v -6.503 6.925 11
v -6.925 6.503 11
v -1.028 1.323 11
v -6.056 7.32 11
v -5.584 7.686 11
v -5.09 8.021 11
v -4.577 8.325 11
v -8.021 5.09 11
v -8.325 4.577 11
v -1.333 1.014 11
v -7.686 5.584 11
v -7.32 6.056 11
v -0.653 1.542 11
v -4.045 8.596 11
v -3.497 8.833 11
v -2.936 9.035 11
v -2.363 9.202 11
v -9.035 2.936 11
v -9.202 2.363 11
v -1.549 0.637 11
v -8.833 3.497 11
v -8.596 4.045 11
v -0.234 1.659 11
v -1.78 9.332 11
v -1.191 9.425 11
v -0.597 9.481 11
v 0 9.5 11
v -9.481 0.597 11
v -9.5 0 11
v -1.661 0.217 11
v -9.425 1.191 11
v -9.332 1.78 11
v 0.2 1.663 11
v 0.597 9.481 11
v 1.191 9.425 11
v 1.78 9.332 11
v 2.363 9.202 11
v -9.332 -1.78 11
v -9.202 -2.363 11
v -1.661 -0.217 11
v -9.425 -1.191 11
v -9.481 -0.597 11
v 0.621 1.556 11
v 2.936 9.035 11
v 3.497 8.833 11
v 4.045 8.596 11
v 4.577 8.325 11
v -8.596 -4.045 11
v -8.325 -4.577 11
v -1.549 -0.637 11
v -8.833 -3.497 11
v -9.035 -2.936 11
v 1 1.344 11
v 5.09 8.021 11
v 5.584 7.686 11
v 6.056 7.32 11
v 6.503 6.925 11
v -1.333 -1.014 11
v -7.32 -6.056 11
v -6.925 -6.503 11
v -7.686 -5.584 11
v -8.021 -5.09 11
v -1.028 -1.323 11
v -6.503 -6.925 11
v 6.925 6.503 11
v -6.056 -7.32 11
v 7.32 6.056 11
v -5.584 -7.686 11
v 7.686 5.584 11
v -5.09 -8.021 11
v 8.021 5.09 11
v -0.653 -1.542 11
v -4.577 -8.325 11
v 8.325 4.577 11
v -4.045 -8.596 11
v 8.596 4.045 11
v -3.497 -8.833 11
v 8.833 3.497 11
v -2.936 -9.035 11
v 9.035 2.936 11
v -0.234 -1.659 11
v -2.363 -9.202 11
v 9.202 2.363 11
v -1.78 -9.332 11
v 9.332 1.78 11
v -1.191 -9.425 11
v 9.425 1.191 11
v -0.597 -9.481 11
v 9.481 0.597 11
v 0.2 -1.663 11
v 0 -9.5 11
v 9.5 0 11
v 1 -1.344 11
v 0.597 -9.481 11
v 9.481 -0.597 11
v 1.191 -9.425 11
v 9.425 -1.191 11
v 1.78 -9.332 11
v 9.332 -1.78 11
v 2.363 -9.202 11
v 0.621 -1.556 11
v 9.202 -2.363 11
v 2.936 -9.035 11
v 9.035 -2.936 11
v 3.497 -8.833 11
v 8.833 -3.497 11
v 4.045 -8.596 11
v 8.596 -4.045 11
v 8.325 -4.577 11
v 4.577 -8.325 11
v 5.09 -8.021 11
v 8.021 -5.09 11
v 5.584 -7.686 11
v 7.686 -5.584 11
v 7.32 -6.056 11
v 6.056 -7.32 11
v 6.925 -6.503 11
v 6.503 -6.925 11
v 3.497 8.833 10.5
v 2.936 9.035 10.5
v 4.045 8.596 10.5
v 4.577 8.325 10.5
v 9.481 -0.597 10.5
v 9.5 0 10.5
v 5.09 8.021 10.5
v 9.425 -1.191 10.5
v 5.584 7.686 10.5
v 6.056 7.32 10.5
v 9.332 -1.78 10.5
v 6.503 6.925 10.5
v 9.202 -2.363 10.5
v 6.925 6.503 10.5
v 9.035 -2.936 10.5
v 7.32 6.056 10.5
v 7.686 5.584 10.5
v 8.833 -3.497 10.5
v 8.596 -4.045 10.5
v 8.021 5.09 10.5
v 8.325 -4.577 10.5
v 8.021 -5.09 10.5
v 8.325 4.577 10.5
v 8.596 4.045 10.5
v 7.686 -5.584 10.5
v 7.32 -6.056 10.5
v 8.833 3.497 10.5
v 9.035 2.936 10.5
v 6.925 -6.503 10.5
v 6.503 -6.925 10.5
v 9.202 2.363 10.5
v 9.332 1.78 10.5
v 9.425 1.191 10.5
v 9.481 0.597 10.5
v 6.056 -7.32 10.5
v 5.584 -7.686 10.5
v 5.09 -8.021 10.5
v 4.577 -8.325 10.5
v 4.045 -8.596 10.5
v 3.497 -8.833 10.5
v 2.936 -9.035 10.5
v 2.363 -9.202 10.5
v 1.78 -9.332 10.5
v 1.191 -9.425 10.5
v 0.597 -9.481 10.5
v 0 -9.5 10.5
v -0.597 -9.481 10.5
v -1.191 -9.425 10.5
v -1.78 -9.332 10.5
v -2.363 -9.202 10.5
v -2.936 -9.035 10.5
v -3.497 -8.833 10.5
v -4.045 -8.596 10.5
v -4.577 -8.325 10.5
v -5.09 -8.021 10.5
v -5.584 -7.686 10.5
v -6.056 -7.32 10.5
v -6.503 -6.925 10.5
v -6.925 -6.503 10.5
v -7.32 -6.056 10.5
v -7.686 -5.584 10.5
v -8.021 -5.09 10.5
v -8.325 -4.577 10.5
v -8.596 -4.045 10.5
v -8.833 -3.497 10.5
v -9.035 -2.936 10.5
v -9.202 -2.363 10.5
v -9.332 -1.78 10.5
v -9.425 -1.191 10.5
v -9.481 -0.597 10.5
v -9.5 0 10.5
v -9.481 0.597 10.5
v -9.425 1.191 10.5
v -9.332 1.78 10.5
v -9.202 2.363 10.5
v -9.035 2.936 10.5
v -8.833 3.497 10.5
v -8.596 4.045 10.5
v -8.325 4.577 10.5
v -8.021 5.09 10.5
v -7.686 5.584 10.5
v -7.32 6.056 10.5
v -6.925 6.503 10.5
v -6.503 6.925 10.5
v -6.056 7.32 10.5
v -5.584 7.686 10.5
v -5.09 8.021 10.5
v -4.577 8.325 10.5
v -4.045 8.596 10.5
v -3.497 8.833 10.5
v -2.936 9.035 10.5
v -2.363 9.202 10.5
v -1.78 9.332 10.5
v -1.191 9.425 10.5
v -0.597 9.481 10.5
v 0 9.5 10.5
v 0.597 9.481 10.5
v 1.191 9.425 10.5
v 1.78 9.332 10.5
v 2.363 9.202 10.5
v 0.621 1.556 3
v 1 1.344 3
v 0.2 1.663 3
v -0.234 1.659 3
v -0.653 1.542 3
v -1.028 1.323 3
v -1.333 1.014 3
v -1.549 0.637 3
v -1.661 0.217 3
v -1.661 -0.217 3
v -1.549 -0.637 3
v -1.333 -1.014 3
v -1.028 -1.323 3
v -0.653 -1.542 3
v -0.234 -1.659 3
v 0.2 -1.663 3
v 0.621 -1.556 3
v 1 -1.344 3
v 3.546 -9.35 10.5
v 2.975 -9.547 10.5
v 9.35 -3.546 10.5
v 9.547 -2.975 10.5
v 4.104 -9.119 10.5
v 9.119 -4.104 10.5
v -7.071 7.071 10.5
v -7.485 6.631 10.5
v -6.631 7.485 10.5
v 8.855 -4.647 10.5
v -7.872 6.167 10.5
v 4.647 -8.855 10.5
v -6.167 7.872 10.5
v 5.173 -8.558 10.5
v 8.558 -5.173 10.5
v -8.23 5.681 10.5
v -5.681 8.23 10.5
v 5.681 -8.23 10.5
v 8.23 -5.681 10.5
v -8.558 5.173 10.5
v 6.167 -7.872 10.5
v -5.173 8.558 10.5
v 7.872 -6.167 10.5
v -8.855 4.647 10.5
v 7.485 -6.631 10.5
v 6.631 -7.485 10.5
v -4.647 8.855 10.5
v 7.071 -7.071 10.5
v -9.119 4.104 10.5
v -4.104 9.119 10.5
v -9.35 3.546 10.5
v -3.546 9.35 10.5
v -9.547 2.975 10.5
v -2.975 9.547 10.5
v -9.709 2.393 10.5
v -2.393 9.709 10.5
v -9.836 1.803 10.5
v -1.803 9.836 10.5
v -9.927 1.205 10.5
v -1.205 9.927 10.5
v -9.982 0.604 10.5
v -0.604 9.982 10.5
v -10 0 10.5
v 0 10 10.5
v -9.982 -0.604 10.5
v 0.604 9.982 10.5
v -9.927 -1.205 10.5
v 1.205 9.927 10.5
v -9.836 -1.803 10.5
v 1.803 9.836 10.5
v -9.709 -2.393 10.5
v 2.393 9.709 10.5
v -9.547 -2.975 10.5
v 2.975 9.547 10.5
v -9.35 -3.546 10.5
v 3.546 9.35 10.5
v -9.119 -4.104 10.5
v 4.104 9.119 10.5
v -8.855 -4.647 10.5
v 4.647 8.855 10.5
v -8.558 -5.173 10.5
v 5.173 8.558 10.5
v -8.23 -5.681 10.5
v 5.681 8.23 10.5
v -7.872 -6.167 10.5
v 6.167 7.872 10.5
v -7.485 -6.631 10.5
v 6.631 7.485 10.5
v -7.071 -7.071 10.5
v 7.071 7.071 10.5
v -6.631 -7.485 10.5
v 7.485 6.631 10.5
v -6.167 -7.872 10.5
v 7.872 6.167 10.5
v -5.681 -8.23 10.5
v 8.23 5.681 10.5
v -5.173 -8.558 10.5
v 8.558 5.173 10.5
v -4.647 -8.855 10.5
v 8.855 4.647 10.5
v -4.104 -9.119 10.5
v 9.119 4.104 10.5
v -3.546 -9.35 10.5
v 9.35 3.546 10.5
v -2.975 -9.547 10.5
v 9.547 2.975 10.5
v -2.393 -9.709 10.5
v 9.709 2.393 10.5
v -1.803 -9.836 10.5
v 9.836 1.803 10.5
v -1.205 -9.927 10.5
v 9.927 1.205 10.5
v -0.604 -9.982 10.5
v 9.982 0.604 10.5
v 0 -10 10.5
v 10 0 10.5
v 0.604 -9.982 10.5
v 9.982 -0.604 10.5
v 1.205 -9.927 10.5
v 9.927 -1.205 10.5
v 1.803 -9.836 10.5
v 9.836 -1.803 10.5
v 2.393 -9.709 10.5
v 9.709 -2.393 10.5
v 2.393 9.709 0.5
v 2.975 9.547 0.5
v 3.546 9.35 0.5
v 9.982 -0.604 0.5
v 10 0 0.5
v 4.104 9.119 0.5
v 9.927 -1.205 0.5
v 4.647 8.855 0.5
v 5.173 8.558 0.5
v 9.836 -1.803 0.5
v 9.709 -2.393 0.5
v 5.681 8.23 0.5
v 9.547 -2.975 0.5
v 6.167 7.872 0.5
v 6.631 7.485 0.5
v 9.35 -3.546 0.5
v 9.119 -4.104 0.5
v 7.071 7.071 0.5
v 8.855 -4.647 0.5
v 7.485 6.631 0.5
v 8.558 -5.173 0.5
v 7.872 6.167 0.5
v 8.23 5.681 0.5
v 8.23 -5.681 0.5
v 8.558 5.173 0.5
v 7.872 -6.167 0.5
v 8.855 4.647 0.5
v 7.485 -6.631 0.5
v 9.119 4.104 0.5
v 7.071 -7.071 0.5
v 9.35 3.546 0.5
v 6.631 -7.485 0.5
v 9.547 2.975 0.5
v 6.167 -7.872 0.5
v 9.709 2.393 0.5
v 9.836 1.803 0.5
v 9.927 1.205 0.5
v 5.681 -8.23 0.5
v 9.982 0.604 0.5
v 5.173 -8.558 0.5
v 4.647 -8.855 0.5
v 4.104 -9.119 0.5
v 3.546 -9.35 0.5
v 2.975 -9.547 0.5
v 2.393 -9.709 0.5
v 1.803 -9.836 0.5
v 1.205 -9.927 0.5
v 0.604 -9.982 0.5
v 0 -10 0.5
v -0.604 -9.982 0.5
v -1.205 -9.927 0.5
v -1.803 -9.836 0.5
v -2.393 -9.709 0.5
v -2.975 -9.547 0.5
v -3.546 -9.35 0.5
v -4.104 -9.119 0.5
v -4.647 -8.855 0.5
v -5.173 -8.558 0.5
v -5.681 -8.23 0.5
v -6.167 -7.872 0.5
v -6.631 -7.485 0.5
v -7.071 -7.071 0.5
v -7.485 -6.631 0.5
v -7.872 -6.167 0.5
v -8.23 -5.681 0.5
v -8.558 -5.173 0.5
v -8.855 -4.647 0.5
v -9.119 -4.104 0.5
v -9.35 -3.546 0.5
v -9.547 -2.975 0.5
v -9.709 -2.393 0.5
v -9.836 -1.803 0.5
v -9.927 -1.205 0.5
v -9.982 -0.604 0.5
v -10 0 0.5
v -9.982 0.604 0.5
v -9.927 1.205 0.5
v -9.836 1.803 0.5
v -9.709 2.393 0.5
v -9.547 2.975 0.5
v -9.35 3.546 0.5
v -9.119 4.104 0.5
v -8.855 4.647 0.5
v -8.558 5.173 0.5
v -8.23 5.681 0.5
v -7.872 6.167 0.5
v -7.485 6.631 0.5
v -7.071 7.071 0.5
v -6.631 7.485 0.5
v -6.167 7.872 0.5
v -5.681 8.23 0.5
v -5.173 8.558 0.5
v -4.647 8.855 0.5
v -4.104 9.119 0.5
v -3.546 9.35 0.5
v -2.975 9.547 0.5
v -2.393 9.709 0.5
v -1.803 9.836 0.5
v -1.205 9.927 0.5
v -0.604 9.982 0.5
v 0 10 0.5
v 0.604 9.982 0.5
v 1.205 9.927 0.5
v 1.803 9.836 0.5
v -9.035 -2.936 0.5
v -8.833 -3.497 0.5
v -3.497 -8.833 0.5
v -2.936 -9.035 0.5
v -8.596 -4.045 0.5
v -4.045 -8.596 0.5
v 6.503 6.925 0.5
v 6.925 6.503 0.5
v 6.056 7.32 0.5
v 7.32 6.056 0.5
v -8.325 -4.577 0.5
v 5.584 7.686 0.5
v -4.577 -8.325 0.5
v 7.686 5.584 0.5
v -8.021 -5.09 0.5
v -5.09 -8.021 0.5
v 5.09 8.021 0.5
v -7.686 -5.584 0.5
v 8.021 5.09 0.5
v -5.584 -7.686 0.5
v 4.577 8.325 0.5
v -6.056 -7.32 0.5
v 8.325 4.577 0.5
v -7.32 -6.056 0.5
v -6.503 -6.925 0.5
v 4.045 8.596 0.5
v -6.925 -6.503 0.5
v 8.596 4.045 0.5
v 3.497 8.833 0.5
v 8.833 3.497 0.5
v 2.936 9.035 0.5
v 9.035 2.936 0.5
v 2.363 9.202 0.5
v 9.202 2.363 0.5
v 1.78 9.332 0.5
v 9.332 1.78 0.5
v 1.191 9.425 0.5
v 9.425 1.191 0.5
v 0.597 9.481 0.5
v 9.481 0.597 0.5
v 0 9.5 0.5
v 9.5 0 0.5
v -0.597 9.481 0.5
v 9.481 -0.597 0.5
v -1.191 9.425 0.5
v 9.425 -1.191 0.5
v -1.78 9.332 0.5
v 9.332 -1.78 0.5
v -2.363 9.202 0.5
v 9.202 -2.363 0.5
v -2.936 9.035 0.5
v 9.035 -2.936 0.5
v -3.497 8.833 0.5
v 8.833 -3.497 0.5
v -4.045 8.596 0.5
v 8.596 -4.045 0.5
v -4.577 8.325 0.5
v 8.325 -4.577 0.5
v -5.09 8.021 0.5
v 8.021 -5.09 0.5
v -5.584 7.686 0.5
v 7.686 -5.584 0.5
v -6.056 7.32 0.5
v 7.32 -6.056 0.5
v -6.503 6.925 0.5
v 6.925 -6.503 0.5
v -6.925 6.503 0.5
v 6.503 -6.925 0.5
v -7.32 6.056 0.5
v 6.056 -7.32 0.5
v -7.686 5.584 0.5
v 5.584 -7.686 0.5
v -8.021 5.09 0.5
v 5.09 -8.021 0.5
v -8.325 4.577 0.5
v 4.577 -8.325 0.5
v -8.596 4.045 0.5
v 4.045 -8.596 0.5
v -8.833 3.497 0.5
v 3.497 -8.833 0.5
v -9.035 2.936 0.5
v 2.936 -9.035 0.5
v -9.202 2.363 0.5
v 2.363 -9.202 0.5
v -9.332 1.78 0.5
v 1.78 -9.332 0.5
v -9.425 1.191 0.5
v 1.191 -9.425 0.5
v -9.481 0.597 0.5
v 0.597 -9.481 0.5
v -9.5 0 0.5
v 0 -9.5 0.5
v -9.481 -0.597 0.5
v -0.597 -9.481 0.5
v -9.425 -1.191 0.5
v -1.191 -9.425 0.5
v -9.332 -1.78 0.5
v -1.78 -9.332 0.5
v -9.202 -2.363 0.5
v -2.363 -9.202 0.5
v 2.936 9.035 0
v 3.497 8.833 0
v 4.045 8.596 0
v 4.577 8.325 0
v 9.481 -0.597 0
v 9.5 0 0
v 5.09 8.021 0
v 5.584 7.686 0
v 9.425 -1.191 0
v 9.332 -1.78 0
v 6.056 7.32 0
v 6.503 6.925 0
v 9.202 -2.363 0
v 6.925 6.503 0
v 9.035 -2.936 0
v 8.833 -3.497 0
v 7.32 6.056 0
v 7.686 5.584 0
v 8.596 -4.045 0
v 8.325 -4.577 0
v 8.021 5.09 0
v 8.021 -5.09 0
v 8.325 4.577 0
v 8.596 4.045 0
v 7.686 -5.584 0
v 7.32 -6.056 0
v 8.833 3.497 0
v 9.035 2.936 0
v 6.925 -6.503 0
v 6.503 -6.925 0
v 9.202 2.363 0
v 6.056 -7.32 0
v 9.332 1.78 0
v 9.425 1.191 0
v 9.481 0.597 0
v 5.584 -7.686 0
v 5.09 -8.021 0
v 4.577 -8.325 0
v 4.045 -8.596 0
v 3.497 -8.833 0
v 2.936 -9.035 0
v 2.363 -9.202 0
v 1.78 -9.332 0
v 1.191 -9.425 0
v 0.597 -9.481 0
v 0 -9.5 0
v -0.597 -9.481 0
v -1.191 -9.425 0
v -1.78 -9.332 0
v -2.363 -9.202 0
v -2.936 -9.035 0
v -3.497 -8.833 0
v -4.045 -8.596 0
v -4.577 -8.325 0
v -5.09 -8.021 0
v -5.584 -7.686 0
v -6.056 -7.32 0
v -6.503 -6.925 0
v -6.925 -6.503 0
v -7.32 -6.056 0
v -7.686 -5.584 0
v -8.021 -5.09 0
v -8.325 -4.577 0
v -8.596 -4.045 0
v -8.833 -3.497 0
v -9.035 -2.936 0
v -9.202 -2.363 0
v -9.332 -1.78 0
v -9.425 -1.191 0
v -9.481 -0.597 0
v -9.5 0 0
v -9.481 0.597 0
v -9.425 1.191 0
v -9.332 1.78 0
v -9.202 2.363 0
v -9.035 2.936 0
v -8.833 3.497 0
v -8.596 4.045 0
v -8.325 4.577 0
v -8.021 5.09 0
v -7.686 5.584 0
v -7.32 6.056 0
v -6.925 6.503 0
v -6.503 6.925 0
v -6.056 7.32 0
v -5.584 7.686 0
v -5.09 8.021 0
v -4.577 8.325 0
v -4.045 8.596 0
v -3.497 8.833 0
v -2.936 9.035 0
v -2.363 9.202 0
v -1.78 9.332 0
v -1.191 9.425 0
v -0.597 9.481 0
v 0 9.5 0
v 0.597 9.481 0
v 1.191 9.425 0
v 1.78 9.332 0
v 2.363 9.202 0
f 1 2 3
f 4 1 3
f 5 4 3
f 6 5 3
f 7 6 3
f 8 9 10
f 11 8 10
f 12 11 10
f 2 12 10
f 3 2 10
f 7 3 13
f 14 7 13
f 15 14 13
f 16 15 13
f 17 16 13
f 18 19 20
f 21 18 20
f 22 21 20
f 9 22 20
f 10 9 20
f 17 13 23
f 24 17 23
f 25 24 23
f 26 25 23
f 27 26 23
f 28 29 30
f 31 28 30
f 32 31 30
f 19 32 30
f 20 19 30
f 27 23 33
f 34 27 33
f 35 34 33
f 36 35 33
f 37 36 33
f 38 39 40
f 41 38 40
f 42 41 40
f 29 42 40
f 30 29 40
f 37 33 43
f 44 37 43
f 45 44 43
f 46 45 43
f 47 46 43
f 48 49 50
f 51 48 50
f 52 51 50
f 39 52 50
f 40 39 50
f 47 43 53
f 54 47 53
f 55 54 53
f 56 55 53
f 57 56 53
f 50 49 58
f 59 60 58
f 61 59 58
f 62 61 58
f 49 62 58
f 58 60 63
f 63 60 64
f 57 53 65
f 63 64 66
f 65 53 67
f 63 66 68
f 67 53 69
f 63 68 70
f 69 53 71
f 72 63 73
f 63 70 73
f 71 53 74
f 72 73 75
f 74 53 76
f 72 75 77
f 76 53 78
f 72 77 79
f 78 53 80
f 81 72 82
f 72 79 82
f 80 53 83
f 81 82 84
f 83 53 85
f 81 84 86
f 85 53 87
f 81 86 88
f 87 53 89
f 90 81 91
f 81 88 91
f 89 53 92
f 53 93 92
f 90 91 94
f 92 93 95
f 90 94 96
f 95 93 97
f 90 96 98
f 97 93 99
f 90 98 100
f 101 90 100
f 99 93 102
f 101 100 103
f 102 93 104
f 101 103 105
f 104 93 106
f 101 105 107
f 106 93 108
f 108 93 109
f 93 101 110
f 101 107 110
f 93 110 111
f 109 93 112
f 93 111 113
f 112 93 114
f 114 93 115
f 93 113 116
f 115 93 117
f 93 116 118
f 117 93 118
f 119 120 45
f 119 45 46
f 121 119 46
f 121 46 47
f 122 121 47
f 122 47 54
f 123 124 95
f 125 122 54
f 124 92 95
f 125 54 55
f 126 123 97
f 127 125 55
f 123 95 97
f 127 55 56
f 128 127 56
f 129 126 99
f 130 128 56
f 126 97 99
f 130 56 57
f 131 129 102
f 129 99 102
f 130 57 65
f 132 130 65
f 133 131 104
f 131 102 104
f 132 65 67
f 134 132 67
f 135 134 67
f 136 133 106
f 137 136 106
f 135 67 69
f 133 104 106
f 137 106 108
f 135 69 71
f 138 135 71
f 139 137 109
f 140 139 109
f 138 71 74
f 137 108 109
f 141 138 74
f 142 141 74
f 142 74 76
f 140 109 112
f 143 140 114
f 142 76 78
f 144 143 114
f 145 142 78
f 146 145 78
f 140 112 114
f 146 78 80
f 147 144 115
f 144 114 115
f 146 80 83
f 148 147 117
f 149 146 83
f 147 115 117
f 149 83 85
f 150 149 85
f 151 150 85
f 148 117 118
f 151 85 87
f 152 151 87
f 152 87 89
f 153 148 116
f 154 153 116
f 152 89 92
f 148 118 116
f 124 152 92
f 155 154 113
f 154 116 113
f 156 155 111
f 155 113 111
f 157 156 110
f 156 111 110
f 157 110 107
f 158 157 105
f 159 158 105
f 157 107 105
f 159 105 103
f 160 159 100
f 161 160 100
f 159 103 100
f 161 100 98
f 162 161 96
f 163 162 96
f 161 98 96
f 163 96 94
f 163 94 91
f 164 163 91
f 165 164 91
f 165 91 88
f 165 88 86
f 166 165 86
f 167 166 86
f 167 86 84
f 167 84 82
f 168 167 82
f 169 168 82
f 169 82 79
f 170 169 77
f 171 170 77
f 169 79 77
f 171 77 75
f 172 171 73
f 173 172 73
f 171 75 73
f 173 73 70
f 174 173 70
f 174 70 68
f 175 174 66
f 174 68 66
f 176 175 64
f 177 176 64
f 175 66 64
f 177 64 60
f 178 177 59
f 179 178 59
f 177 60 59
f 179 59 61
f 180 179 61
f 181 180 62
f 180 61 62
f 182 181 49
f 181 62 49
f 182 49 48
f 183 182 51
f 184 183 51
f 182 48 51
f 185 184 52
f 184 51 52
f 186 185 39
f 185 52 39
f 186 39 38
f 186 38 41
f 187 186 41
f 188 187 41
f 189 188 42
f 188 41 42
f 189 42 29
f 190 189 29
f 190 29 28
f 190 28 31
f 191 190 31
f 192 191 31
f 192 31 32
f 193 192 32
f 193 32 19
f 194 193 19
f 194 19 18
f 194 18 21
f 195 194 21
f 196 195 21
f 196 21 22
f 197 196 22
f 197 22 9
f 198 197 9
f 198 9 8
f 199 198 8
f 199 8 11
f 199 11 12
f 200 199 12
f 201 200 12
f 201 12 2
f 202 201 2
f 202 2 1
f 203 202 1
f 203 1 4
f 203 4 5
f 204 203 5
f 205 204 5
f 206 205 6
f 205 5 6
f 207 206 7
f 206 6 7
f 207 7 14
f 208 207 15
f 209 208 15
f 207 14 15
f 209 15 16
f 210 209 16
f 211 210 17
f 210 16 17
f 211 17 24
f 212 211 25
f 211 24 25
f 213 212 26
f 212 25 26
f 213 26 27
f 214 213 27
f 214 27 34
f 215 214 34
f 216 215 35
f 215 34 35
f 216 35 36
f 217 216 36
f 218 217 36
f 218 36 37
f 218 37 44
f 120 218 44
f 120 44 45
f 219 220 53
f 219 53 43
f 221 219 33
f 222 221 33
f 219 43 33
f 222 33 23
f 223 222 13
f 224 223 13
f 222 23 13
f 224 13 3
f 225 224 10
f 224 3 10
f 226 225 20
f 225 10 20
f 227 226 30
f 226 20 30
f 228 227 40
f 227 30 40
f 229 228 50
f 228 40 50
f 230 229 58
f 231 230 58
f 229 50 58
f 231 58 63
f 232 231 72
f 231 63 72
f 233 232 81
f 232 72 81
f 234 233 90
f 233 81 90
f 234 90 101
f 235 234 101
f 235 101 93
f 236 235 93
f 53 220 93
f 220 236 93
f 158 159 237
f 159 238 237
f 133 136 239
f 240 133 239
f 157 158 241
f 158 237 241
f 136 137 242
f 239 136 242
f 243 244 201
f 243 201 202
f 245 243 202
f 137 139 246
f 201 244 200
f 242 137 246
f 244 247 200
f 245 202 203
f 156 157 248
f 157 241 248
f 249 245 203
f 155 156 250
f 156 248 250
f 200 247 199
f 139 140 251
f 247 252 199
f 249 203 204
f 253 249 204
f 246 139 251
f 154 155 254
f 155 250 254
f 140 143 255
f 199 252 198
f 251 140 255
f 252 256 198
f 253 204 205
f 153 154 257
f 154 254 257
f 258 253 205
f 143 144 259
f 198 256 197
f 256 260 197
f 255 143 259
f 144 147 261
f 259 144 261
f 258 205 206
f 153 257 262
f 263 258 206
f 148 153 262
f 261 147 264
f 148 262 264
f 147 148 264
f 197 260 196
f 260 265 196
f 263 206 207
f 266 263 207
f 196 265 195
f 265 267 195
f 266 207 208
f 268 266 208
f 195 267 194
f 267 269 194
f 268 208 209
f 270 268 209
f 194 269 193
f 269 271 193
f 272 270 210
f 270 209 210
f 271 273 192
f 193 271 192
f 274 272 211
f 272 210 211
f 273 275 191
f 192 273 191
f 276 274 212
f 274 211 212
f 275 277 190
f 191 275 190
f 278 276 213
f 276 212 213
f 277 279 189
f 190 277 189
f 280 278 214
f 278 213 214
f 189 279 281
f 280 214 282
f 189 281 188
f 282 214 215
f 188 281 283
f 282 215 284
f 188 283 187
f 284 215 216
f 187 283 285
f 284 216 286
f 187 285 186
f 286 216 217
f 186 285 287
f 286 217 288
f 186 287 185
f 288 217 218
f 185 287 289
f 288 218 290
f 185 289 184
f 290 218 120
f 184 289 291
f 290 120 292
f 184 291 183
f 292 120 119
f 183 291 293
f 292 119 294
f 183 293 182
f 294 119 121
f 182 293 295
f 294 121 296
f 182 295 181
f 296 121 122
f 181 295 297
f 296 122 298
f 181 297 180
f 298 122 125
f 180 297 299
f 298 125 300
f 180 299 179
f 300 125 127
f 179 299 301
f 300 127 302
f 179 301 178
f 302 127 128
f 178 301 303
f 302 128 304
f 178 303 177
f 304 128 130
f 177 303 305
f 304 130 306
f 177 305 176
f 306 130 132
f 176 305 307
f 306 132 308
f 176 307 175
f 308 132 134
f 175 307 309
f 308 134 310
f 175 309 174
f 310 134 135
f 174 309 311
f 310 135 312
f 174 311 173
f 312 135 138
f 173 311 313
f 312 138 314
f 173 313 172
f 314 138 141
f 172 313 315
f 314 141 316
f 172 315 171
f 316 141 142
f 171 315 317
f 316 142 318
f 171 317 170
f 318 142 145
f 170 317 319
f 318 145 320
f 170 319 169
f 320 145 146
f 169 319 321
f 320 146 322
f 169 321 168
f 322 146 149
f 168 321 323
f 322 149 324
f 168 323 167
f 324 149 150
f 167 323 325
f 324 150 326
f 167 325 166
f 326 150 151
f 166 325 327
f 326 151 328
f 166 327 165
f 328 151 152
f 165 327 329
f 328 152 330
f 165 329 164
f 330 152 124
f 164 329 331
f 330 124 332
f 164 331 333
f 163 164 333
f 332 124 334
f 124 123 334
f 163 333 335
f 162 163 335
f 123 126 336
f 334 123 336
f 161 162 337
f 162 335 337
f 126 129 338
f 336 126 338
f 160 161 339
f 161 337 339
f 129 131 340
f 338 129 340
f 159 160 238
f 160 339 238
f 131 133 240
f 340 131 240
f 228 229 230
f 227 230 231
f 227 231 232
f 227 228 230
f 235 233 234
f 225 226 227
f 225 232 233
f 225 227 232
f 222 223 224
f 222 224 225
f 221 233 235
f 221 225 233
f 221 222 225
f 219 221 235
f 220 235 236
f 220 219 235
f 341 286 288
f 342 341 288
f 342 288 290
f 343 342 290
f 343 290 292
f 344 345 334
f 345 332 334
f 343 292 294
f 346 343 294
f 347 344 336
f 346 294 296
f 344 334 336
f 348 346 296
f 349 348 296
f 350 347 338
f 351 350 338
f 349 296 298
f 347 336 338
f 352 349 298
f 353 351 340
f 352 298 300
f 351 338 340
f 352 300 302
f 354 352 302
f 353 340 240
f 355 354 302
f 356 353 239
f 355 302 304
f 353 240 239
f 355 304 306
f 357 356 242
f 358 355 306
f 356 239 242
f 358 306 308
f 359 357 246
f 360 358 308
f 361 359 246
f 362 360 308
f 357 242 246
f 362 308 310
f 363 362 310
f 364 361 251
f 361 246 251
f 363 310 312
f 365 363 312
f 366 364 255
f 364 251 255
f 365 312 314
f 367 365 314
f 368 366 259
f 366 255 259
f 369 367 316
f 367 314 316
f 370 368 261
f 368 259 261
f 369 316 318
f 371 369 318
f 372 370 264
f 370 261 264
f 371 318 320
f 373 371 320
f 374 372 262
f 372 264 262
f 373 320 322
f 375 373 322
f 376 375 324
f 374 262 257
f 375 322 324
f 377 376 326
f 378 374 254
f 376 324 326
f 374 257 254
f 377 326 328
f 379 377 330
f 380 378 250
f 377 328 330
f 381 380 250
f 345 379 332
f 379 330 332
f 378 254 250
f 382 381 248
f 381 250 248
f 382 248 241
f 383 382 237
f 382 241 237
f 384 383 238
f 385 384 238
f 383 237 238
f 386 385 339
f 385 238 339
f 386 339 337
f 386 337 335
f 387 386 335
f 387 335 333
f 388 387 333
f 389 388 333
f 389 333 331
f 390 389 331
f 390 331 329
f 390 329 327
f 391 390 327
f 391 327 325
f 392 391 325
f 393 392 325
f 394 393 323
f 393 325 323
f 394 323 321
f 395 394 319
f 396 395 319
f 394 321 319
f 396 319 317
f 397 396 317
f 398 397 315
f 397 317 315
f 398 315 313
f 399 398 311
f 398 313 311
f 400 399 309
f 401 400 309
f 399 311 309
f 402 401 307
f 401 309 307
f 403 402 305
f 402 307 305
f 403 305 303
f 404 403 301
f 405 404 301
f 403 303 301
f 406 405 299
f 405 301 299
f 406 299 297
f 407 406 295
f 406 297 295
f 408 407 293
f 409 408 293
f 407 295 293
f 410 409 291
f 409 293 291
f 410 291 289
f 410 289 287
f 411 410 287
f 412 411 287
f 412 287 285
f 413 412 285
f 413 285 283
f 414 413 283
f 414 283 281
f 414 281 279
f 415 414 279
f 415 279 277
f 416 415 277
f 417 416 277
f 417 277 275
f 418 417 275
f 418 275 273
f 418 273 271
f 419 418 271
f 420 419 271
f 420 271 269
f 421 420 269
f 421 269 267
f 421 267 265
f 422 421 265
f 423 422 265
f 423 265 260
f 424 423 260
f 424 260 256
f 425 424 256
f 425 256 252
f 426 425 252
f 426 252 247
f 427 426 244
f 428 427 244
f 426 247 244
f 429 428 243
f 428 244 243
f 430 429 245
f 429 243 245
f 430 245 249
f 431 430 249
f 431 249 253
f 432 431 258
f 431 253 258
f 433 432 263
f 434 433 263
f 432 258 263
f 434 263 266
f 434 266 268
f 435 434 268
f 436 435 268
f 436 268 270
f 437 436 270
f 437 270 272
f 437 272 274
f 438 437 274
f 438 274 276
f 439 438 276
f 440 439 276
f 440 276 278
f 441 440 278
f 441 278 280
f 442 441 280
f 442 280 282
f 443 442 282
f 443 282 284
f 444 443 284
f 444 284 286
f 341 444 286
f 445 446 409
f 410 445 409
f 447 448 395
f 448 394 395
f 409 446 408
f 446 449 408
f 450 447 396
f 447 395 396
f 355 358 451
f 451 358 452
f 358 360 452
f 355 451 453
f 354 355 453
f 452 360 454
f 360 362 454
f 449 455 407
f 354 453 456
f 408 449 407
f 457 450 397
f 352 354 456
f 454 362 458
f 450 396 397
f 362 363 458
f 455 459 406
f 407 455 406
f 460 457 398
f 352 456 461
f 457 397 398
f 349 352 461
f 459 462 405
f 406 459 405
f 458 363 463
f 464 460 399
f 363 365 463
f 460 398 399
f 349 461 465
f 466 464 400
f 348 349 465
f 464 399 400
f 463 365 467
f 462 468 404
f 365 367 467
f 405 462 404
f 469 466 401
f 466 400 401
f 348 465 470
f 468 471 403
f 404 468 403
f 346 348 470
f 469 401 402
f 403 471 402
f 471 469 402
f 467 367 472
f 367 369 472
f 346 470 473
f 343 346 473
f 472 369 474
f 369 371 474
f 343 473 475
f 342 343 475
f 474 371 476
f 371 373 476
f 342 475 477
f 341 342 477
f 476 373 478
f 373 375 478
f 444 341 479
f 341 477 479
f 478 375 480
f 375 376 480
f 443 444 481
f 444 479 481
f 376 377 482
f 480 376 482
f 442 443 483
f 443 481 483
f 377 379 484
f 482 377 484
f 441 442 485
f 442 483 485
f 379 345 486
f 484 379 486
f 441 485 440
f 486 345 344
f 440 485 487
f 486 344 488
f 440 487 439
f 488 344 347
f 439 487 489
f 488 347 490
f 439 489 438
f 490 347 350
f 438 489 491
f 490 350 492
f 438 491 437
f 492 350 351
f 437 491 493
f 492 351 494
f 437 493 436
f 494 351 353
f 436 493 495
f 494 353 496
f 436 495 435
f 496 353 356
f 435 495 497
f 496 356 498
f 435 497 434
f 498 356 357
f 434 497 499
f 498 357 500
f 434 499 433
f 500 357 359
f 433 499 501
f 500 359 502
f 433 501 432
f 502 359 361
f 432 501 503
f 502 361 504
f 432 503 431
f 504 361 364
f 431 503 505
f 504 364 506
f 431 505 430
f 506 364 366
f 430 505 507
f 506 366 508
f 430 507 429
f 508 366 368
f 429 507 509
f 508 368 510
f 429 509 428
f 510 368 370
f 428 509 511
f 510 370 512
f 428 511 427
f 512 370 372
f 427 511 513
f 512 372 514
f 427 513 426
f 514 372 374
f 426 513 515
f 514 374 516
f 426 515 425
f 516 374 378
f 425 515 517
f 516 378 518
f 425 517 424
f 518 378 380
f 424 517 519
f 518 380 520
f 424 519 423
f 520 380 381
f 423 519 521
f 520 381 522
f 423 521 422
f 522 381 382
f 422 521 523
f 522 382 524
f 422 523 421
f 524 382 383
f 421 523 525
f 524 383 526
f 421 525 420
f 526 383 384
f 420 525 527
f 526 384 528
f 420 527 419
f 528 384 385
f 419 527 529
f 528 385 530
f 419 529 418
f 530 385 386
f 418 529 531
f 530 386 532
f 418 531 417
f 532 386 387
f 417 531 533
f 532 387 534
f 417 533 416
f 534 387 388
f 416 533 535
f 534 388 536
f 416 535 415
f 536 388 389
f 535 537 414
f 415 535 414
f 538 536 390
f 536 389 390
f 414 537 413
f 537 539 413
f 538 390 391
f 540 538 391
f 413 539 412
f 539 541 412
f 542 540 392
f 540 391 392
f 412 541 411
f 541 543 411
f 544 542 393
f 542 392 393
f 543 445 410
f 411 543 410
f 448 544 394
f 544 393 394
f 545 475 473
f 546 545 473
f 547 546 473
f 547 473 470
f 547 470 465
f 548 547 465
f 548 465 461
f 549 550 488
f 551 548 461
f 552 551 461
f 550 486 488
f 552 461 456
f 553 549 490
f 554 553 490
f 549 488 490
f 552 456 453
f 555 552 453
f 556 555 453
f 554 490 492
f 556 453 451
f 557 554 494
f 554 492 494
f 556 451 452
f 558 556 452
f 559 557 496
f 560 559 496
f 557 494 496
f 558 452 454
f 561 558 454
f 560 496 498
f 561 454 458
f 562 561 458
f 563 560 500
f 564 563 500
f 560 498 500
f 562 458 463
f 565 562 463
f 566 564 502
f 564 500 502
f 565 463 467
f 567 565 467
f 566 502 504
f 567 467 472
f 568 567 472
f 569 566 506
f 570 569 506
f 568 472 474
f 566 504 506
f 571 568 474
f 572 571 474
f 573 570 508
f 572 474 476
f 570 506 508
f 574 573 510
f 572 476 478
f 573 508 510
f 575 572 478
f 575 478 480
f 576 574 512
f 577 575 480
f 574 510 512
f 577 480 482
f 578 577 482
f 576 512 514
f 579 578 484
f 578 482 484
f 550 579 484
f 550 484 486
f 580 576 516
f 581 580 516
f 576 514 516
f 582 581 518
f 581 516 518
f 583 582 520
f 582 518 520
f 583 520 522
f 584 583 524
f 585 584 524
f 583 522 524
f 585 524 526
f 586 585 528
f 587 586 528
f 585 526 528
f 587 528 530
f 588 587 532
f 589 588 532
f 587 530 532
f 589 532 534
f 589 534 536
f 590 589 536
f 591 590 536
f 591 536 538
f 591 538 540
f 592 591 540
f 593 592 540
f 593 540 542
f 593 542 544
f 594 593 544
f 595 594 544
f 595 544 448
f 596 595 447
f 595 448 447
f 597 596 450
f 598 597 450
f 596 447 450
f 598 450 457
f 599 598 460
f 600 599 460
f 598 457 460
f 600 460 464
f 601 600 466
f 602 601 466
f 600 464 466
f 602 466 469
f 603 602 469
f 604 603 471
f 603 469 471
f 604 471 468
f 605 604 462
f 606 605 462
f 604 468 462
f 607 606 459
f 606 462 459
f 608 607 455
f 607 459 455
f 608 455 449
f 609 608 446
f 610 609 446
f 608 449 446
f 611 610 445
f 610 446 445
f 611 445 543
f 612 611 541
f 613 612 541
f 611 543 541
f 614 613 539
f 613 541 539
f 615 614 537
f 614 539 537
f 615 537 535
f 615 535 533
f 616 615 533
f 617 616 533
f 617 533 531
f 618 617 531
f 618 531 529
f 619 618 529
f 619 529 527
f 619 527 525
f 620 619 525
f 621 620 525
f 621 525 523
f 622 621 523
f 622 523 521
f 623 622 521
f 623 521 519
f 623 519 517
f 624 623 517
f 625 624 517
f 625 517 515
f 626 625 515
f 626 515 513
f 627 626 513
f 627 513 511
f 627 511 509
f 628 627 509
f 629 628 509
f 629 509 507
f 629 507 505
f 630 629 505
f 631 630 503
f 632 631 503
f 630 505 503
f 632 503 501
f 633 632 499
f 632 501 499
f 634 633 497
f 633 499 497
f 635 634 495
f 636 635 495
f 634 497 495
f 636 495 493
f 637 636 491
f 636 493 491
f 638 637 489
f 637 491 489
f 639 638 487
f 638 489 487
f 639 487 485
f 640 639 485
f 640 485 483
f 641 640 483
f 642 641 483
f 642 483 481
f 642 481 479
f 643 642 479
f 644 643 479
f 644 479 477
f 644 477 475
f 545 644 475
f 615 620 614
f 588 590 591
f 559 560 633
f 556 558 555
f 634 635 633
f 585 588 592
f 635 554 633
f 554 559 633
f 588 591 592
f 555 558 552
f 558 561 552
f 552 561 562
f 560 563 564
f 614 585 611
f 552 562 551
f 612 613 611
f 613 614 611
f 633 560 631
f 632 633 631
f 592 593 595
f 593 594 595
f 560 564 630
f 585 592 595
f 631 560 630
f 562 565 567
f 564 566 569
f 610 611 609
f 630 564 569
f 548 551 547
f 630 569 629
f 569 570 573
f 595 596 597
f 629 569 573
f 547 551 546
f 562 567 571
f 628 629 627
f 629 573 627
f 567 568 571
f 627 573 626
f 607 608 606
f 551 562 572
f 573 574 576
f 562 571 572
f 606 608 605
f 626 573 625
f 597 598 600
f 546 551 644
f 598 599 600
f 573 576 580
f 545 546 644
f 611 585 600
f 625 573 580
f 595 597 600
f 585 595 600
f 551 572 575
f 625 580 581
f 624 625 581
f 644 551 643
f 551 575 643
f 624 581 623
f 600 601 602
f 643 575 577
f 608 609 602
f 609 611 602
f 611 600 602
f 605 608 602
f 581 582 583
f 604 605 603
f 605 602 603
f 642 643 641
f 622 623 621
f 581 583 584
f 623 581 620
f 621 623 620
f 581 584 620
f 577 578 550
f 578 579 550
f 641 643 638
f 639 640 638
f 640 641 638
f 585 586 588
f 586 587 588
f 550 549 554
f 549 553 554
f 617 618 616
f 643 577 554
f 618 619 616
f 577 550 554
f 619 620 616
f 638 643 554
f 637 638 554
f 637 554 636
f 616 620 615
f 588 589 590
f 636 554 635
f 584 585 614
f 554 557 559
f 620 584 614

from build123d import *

# Parameters (mm, degrees)
BOX_W             = 5
BOX_H             = 6
BOX_DEPTH         = 8
CYLINDER001_R     = 1.675
CYLINDER001_DEPTH = 8


with BuildPart() as d:
    # Box → Box (new body)
    with BuildSketch(Plane(origin=(1, -3, 15), x_dir=(1, 0, 0), z_dir=(0, 0, 1))):
        with Locations((2.5, 3)):
            Rectangle(BOX_W, BOX_H)
    extrude(amount=BOX_DEPTH)


with BuildPart() as eje_d:
    # Cylinder001 → Cylinder001 (new body)
    with BuildSketch(Plane.XY.offset(15)):
        Circle(CYLINDER001_R)
    extrude(amount=CYLINDER001_DEPTH)

    # Cut: cut D
    add(d.part, mode=Mode.SUBTRACT)


with BuildPart() as eje_d_1:
    # Cut placement: moved
    add(eje_d.part.moved(Location((0, 0, -12))))


with BuildPart() as cut001:
    # Sketch → Revolution (revolve)
    with BuildSketch(Plane.XZ):
        Polygon((9.5, 11), (0, 11), (0, 0), (9.5, 0), (9.5, 0.5), (10, 0.5), (10, 10.5), (9.5, 10.5), align=None)
    revolve(axis=Axis((0, 0, 0), (0, 0, 1)))

    # Cut001: cut EJE + D
    add(eje_d_1.part, mode=Mode.SUBTRACT)


solid = cut001.part
